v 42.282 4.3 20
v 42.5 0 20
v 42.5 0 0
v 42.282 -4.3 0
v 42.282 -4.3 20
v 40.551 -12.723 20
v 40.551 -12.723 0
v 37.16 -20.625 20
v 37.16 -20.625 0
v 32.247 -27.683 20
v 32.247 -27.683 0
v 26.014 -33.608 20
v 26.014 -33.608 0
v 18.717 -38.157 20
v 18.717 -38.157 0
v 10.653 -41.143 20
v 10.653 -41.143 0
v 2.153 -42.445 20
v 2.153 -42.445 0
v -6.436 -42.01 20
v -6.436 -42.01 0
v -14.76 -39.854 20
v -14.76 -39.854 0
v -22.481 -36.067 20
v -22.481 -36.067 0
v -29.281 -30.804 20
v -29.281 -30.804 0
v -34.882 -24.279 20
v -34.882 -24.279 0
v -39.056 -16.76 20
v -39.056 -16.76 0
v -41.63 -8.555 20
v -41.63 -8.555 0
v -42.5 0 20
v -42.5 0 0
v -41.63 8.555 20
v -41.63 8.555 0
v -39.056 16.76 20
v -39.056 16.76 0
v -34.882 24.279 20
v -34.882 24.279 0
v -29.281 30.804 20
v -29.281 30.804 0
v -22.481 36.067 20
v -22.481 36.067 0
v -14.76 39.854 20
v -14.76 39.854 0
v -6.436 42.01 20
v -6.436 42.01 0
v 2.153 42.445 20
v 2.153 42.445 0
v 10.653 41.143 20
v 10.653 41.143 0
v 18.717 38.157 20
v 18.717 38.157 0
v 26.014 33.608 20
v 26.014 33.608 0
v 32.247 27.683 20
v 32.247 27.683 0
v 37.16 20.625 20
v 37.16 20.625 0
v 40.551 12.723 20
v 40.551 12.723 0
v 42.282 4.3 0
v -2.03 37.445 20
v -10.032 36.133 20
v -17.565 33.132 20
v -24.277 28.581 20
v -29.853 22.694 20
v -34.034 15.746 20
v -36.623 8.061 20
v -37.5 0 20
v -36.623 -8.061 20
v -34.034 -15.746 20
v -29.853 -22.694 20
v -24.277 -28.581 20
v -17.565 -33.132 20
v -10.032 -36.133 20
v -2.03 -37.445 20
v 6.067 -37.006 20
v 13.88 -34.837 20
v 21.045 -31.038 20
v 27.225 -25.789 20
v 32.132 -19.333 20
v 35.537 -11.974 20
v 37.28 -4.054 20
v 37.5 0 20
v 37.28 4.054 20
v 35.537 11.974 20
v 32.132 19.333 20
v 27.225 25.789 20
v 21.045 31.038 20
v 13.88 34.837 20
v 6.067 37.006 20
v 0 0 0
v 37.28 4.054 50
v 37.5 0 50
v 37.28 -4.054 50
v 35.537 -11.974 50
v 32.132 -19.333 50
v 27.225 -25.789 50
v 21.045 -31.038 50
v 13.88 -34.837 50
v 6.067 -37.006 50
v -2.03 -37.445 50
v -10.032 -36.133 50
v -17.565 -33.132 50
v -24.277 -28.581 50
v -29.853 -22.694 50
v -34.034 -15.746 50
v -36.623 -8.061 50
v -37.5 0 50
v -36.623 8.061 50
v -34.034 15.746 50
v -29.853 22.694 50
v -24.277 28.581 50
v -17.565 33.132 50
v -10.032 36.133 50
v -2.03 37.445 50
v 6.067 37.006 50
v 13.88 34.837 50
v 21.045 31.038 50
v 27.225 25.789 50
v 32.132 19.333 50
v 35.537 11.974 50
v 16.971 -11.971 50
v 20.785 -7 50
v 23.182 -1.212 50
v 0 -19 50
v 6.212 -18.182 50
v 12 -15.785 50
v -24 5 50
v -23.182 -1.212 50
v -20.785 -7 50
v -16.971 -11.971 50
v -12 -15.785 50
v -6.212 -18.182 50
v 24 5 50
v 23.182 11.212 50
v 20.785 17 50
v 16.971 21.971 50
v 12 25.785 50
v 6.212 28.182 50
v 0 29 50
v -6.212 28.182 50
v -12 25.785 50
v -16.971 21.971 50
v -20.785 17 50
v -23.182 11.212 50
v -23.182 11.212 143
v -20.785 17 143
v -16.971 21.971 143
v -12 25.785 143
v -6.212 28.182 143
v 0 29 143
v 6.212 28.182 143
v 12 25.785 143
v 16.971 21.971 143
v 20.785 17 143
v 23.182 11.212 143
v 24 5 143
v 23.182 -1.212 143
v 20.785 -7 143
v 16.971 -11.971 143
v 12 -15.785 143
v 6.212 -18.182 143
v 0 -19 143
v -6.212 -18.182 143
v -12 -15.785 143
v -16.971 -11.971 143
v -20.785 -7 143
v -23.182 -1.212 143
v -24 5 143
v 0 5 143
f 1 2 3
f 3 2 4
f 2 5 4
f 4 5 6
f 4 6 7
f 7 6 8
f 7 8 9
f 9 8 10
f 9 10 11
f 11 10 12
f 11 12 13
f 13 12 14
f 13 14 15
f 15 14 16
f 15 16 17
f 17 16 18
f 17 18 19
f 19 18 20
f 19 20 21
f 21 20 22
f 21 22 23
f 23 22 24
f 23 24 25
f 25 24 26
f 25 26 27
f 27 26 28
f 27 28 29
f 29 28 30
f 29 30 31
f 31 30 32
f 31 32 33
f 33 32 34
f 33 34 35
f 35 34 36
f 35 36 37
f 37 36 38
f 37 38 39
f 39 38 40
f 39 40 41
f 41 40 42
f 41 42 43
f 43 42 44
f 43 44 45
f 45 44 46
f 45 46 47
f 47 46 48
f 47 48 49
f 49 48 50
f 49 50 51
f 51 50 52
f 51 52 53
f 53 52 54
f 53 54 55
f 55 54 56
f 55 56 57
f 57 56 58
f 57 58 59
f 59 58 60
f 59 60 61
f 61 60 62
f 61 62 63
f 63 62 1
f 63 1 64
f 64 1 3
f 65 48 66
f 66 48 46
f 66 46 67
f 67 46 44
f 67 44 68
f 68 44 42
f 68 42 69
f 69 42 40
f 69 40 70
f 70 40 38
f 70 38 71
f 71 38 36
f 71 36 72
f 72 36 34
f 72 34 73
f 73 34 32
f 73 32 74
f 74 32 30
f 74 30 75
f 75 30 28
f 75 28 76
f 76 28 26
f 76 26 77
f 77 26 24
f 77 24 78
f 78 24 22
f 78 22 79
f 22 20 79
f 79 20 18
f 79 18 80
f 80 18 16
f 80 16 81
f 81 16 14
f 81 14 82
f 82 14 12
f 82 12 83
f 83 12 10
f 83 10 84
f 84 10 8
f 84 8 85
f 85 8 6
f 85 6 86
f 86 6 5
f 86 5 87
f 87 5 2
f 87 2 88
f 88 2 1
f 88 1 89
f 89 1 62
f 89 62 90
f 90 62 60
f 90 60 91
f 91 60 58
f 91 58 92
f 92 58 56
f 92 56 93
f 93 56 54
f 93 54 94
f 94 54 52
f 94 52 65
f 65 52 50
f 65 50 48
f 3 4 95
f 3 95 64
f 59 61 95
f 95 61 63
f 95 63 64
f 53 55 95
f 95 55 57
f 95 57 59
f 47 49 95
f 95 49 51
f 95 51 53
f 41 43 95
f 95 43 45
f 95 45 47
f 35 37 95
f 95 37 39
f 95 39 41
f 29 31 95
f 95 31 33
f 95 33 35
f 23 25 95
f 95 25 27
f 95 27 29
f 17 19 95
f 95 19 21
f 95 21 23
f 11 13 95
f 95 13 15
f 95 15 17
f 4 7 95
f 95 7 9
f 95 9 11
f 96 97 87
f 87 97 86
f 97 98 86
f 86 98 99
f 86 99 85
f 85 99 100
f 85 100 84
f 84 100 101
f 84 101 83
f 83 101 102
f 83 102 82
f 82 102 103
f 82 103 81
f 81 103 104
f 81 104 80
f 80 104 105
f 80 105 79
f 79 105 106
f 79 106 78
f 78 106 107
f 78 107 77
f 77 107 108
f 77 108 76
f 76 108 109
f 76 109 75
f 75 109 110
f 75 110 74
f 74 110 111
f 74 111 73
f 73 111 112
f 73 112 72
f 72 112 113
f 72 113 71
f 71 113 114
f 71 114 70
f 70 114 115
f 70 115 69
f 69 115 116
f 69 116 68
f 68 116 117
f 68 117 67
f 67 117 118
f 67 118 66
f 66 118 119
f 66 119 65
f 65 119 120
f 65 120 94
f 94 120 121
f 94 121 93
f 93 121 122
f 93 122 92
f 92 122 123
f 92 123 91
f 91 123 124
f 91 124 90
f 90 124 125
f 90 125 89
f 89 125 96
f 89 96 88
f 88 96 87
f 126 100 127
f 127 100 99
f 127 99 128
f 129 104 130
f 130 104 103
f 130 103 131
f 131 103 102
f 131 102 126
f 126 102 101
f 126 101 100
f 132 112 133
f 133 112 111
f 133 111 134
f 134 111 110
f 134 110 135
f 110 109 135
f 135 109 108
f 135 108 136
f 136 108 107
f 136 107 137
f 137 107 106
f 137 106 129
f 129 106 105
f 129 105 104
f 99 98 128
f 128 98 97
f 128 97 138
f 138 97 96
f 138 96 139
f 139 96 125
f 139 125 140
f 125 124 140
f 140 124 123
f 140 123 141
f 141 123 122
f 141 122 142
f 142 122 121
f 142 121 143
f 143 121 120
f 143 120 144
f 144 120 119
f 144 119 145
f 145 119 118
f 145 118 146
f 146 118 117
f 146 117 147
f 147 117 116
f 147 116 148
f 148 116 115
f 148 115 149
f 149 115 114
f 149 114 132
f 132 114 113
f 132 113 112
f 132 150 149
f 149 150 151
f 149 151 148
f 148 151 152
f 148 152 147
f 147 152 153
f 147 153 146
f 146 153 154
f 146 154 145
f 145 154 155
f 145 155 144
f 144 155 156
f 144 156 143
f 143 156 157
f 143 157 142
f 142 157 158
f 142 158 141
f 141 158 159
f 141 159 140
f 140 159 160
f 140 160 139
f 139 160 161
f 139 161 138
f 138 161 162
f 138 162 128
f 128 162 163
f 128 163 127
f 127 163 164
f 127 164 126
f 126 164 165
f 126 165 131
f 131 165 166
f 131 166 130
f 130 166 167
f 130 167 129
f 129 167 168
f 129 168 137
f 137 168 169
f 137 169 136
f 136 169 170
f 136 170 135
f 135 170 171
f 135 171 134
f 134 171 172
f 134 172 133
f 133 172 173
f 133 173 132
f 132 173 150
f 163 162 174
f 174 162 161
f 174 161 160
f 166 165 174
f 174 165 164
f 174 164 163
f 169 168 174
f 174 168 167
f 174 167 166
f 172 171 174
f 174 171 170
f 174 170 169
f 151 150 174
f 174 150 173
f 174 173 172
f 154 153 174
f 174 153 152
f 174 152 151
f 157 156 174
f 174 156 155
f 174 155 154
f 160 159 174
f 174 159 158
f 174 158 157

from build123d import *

# Parameters (mm, degrees)
SKETCH_1_R      = 42.5
EXTRUDE_1_DEPTH = 20
SKETCH_2_R      = 37.5
EXTRUDE_2_DEPTH = 30
SKETCH_3_R      = 24
EXTRUDE_3_DEPTH = 93


with BuildPart() as part:
    # ｽｹｯﾁ1 → ﾎﾞｽ - 押し出し1 (new body)
    with BuildSketch(Plane.XY):
        Circle(SKETCH_1_R)
    extrude(amount=EXTRUDE_1_DEPTH)

    # ｽｹｯﾁ2 → ﾎﾞｽ - 押し出し2 (add)
    with BuildSketch(Plane.XY.offset(20)):
        Circle(SKETCH_2_R)
    extrude(amount=EXTRUDE_2_DEPTH)

    # ｽｹｯﾁ3 → ﾎﾞｽ - 押し出し3 (add)
    with BuildSketch(Plane.XY.offset(50)):
        with Locations((0, 5)):
            Circle(SKETCH_3_R)
    extrude(amount=EXTRUDE_3_DEPTH)


solid = part.part
